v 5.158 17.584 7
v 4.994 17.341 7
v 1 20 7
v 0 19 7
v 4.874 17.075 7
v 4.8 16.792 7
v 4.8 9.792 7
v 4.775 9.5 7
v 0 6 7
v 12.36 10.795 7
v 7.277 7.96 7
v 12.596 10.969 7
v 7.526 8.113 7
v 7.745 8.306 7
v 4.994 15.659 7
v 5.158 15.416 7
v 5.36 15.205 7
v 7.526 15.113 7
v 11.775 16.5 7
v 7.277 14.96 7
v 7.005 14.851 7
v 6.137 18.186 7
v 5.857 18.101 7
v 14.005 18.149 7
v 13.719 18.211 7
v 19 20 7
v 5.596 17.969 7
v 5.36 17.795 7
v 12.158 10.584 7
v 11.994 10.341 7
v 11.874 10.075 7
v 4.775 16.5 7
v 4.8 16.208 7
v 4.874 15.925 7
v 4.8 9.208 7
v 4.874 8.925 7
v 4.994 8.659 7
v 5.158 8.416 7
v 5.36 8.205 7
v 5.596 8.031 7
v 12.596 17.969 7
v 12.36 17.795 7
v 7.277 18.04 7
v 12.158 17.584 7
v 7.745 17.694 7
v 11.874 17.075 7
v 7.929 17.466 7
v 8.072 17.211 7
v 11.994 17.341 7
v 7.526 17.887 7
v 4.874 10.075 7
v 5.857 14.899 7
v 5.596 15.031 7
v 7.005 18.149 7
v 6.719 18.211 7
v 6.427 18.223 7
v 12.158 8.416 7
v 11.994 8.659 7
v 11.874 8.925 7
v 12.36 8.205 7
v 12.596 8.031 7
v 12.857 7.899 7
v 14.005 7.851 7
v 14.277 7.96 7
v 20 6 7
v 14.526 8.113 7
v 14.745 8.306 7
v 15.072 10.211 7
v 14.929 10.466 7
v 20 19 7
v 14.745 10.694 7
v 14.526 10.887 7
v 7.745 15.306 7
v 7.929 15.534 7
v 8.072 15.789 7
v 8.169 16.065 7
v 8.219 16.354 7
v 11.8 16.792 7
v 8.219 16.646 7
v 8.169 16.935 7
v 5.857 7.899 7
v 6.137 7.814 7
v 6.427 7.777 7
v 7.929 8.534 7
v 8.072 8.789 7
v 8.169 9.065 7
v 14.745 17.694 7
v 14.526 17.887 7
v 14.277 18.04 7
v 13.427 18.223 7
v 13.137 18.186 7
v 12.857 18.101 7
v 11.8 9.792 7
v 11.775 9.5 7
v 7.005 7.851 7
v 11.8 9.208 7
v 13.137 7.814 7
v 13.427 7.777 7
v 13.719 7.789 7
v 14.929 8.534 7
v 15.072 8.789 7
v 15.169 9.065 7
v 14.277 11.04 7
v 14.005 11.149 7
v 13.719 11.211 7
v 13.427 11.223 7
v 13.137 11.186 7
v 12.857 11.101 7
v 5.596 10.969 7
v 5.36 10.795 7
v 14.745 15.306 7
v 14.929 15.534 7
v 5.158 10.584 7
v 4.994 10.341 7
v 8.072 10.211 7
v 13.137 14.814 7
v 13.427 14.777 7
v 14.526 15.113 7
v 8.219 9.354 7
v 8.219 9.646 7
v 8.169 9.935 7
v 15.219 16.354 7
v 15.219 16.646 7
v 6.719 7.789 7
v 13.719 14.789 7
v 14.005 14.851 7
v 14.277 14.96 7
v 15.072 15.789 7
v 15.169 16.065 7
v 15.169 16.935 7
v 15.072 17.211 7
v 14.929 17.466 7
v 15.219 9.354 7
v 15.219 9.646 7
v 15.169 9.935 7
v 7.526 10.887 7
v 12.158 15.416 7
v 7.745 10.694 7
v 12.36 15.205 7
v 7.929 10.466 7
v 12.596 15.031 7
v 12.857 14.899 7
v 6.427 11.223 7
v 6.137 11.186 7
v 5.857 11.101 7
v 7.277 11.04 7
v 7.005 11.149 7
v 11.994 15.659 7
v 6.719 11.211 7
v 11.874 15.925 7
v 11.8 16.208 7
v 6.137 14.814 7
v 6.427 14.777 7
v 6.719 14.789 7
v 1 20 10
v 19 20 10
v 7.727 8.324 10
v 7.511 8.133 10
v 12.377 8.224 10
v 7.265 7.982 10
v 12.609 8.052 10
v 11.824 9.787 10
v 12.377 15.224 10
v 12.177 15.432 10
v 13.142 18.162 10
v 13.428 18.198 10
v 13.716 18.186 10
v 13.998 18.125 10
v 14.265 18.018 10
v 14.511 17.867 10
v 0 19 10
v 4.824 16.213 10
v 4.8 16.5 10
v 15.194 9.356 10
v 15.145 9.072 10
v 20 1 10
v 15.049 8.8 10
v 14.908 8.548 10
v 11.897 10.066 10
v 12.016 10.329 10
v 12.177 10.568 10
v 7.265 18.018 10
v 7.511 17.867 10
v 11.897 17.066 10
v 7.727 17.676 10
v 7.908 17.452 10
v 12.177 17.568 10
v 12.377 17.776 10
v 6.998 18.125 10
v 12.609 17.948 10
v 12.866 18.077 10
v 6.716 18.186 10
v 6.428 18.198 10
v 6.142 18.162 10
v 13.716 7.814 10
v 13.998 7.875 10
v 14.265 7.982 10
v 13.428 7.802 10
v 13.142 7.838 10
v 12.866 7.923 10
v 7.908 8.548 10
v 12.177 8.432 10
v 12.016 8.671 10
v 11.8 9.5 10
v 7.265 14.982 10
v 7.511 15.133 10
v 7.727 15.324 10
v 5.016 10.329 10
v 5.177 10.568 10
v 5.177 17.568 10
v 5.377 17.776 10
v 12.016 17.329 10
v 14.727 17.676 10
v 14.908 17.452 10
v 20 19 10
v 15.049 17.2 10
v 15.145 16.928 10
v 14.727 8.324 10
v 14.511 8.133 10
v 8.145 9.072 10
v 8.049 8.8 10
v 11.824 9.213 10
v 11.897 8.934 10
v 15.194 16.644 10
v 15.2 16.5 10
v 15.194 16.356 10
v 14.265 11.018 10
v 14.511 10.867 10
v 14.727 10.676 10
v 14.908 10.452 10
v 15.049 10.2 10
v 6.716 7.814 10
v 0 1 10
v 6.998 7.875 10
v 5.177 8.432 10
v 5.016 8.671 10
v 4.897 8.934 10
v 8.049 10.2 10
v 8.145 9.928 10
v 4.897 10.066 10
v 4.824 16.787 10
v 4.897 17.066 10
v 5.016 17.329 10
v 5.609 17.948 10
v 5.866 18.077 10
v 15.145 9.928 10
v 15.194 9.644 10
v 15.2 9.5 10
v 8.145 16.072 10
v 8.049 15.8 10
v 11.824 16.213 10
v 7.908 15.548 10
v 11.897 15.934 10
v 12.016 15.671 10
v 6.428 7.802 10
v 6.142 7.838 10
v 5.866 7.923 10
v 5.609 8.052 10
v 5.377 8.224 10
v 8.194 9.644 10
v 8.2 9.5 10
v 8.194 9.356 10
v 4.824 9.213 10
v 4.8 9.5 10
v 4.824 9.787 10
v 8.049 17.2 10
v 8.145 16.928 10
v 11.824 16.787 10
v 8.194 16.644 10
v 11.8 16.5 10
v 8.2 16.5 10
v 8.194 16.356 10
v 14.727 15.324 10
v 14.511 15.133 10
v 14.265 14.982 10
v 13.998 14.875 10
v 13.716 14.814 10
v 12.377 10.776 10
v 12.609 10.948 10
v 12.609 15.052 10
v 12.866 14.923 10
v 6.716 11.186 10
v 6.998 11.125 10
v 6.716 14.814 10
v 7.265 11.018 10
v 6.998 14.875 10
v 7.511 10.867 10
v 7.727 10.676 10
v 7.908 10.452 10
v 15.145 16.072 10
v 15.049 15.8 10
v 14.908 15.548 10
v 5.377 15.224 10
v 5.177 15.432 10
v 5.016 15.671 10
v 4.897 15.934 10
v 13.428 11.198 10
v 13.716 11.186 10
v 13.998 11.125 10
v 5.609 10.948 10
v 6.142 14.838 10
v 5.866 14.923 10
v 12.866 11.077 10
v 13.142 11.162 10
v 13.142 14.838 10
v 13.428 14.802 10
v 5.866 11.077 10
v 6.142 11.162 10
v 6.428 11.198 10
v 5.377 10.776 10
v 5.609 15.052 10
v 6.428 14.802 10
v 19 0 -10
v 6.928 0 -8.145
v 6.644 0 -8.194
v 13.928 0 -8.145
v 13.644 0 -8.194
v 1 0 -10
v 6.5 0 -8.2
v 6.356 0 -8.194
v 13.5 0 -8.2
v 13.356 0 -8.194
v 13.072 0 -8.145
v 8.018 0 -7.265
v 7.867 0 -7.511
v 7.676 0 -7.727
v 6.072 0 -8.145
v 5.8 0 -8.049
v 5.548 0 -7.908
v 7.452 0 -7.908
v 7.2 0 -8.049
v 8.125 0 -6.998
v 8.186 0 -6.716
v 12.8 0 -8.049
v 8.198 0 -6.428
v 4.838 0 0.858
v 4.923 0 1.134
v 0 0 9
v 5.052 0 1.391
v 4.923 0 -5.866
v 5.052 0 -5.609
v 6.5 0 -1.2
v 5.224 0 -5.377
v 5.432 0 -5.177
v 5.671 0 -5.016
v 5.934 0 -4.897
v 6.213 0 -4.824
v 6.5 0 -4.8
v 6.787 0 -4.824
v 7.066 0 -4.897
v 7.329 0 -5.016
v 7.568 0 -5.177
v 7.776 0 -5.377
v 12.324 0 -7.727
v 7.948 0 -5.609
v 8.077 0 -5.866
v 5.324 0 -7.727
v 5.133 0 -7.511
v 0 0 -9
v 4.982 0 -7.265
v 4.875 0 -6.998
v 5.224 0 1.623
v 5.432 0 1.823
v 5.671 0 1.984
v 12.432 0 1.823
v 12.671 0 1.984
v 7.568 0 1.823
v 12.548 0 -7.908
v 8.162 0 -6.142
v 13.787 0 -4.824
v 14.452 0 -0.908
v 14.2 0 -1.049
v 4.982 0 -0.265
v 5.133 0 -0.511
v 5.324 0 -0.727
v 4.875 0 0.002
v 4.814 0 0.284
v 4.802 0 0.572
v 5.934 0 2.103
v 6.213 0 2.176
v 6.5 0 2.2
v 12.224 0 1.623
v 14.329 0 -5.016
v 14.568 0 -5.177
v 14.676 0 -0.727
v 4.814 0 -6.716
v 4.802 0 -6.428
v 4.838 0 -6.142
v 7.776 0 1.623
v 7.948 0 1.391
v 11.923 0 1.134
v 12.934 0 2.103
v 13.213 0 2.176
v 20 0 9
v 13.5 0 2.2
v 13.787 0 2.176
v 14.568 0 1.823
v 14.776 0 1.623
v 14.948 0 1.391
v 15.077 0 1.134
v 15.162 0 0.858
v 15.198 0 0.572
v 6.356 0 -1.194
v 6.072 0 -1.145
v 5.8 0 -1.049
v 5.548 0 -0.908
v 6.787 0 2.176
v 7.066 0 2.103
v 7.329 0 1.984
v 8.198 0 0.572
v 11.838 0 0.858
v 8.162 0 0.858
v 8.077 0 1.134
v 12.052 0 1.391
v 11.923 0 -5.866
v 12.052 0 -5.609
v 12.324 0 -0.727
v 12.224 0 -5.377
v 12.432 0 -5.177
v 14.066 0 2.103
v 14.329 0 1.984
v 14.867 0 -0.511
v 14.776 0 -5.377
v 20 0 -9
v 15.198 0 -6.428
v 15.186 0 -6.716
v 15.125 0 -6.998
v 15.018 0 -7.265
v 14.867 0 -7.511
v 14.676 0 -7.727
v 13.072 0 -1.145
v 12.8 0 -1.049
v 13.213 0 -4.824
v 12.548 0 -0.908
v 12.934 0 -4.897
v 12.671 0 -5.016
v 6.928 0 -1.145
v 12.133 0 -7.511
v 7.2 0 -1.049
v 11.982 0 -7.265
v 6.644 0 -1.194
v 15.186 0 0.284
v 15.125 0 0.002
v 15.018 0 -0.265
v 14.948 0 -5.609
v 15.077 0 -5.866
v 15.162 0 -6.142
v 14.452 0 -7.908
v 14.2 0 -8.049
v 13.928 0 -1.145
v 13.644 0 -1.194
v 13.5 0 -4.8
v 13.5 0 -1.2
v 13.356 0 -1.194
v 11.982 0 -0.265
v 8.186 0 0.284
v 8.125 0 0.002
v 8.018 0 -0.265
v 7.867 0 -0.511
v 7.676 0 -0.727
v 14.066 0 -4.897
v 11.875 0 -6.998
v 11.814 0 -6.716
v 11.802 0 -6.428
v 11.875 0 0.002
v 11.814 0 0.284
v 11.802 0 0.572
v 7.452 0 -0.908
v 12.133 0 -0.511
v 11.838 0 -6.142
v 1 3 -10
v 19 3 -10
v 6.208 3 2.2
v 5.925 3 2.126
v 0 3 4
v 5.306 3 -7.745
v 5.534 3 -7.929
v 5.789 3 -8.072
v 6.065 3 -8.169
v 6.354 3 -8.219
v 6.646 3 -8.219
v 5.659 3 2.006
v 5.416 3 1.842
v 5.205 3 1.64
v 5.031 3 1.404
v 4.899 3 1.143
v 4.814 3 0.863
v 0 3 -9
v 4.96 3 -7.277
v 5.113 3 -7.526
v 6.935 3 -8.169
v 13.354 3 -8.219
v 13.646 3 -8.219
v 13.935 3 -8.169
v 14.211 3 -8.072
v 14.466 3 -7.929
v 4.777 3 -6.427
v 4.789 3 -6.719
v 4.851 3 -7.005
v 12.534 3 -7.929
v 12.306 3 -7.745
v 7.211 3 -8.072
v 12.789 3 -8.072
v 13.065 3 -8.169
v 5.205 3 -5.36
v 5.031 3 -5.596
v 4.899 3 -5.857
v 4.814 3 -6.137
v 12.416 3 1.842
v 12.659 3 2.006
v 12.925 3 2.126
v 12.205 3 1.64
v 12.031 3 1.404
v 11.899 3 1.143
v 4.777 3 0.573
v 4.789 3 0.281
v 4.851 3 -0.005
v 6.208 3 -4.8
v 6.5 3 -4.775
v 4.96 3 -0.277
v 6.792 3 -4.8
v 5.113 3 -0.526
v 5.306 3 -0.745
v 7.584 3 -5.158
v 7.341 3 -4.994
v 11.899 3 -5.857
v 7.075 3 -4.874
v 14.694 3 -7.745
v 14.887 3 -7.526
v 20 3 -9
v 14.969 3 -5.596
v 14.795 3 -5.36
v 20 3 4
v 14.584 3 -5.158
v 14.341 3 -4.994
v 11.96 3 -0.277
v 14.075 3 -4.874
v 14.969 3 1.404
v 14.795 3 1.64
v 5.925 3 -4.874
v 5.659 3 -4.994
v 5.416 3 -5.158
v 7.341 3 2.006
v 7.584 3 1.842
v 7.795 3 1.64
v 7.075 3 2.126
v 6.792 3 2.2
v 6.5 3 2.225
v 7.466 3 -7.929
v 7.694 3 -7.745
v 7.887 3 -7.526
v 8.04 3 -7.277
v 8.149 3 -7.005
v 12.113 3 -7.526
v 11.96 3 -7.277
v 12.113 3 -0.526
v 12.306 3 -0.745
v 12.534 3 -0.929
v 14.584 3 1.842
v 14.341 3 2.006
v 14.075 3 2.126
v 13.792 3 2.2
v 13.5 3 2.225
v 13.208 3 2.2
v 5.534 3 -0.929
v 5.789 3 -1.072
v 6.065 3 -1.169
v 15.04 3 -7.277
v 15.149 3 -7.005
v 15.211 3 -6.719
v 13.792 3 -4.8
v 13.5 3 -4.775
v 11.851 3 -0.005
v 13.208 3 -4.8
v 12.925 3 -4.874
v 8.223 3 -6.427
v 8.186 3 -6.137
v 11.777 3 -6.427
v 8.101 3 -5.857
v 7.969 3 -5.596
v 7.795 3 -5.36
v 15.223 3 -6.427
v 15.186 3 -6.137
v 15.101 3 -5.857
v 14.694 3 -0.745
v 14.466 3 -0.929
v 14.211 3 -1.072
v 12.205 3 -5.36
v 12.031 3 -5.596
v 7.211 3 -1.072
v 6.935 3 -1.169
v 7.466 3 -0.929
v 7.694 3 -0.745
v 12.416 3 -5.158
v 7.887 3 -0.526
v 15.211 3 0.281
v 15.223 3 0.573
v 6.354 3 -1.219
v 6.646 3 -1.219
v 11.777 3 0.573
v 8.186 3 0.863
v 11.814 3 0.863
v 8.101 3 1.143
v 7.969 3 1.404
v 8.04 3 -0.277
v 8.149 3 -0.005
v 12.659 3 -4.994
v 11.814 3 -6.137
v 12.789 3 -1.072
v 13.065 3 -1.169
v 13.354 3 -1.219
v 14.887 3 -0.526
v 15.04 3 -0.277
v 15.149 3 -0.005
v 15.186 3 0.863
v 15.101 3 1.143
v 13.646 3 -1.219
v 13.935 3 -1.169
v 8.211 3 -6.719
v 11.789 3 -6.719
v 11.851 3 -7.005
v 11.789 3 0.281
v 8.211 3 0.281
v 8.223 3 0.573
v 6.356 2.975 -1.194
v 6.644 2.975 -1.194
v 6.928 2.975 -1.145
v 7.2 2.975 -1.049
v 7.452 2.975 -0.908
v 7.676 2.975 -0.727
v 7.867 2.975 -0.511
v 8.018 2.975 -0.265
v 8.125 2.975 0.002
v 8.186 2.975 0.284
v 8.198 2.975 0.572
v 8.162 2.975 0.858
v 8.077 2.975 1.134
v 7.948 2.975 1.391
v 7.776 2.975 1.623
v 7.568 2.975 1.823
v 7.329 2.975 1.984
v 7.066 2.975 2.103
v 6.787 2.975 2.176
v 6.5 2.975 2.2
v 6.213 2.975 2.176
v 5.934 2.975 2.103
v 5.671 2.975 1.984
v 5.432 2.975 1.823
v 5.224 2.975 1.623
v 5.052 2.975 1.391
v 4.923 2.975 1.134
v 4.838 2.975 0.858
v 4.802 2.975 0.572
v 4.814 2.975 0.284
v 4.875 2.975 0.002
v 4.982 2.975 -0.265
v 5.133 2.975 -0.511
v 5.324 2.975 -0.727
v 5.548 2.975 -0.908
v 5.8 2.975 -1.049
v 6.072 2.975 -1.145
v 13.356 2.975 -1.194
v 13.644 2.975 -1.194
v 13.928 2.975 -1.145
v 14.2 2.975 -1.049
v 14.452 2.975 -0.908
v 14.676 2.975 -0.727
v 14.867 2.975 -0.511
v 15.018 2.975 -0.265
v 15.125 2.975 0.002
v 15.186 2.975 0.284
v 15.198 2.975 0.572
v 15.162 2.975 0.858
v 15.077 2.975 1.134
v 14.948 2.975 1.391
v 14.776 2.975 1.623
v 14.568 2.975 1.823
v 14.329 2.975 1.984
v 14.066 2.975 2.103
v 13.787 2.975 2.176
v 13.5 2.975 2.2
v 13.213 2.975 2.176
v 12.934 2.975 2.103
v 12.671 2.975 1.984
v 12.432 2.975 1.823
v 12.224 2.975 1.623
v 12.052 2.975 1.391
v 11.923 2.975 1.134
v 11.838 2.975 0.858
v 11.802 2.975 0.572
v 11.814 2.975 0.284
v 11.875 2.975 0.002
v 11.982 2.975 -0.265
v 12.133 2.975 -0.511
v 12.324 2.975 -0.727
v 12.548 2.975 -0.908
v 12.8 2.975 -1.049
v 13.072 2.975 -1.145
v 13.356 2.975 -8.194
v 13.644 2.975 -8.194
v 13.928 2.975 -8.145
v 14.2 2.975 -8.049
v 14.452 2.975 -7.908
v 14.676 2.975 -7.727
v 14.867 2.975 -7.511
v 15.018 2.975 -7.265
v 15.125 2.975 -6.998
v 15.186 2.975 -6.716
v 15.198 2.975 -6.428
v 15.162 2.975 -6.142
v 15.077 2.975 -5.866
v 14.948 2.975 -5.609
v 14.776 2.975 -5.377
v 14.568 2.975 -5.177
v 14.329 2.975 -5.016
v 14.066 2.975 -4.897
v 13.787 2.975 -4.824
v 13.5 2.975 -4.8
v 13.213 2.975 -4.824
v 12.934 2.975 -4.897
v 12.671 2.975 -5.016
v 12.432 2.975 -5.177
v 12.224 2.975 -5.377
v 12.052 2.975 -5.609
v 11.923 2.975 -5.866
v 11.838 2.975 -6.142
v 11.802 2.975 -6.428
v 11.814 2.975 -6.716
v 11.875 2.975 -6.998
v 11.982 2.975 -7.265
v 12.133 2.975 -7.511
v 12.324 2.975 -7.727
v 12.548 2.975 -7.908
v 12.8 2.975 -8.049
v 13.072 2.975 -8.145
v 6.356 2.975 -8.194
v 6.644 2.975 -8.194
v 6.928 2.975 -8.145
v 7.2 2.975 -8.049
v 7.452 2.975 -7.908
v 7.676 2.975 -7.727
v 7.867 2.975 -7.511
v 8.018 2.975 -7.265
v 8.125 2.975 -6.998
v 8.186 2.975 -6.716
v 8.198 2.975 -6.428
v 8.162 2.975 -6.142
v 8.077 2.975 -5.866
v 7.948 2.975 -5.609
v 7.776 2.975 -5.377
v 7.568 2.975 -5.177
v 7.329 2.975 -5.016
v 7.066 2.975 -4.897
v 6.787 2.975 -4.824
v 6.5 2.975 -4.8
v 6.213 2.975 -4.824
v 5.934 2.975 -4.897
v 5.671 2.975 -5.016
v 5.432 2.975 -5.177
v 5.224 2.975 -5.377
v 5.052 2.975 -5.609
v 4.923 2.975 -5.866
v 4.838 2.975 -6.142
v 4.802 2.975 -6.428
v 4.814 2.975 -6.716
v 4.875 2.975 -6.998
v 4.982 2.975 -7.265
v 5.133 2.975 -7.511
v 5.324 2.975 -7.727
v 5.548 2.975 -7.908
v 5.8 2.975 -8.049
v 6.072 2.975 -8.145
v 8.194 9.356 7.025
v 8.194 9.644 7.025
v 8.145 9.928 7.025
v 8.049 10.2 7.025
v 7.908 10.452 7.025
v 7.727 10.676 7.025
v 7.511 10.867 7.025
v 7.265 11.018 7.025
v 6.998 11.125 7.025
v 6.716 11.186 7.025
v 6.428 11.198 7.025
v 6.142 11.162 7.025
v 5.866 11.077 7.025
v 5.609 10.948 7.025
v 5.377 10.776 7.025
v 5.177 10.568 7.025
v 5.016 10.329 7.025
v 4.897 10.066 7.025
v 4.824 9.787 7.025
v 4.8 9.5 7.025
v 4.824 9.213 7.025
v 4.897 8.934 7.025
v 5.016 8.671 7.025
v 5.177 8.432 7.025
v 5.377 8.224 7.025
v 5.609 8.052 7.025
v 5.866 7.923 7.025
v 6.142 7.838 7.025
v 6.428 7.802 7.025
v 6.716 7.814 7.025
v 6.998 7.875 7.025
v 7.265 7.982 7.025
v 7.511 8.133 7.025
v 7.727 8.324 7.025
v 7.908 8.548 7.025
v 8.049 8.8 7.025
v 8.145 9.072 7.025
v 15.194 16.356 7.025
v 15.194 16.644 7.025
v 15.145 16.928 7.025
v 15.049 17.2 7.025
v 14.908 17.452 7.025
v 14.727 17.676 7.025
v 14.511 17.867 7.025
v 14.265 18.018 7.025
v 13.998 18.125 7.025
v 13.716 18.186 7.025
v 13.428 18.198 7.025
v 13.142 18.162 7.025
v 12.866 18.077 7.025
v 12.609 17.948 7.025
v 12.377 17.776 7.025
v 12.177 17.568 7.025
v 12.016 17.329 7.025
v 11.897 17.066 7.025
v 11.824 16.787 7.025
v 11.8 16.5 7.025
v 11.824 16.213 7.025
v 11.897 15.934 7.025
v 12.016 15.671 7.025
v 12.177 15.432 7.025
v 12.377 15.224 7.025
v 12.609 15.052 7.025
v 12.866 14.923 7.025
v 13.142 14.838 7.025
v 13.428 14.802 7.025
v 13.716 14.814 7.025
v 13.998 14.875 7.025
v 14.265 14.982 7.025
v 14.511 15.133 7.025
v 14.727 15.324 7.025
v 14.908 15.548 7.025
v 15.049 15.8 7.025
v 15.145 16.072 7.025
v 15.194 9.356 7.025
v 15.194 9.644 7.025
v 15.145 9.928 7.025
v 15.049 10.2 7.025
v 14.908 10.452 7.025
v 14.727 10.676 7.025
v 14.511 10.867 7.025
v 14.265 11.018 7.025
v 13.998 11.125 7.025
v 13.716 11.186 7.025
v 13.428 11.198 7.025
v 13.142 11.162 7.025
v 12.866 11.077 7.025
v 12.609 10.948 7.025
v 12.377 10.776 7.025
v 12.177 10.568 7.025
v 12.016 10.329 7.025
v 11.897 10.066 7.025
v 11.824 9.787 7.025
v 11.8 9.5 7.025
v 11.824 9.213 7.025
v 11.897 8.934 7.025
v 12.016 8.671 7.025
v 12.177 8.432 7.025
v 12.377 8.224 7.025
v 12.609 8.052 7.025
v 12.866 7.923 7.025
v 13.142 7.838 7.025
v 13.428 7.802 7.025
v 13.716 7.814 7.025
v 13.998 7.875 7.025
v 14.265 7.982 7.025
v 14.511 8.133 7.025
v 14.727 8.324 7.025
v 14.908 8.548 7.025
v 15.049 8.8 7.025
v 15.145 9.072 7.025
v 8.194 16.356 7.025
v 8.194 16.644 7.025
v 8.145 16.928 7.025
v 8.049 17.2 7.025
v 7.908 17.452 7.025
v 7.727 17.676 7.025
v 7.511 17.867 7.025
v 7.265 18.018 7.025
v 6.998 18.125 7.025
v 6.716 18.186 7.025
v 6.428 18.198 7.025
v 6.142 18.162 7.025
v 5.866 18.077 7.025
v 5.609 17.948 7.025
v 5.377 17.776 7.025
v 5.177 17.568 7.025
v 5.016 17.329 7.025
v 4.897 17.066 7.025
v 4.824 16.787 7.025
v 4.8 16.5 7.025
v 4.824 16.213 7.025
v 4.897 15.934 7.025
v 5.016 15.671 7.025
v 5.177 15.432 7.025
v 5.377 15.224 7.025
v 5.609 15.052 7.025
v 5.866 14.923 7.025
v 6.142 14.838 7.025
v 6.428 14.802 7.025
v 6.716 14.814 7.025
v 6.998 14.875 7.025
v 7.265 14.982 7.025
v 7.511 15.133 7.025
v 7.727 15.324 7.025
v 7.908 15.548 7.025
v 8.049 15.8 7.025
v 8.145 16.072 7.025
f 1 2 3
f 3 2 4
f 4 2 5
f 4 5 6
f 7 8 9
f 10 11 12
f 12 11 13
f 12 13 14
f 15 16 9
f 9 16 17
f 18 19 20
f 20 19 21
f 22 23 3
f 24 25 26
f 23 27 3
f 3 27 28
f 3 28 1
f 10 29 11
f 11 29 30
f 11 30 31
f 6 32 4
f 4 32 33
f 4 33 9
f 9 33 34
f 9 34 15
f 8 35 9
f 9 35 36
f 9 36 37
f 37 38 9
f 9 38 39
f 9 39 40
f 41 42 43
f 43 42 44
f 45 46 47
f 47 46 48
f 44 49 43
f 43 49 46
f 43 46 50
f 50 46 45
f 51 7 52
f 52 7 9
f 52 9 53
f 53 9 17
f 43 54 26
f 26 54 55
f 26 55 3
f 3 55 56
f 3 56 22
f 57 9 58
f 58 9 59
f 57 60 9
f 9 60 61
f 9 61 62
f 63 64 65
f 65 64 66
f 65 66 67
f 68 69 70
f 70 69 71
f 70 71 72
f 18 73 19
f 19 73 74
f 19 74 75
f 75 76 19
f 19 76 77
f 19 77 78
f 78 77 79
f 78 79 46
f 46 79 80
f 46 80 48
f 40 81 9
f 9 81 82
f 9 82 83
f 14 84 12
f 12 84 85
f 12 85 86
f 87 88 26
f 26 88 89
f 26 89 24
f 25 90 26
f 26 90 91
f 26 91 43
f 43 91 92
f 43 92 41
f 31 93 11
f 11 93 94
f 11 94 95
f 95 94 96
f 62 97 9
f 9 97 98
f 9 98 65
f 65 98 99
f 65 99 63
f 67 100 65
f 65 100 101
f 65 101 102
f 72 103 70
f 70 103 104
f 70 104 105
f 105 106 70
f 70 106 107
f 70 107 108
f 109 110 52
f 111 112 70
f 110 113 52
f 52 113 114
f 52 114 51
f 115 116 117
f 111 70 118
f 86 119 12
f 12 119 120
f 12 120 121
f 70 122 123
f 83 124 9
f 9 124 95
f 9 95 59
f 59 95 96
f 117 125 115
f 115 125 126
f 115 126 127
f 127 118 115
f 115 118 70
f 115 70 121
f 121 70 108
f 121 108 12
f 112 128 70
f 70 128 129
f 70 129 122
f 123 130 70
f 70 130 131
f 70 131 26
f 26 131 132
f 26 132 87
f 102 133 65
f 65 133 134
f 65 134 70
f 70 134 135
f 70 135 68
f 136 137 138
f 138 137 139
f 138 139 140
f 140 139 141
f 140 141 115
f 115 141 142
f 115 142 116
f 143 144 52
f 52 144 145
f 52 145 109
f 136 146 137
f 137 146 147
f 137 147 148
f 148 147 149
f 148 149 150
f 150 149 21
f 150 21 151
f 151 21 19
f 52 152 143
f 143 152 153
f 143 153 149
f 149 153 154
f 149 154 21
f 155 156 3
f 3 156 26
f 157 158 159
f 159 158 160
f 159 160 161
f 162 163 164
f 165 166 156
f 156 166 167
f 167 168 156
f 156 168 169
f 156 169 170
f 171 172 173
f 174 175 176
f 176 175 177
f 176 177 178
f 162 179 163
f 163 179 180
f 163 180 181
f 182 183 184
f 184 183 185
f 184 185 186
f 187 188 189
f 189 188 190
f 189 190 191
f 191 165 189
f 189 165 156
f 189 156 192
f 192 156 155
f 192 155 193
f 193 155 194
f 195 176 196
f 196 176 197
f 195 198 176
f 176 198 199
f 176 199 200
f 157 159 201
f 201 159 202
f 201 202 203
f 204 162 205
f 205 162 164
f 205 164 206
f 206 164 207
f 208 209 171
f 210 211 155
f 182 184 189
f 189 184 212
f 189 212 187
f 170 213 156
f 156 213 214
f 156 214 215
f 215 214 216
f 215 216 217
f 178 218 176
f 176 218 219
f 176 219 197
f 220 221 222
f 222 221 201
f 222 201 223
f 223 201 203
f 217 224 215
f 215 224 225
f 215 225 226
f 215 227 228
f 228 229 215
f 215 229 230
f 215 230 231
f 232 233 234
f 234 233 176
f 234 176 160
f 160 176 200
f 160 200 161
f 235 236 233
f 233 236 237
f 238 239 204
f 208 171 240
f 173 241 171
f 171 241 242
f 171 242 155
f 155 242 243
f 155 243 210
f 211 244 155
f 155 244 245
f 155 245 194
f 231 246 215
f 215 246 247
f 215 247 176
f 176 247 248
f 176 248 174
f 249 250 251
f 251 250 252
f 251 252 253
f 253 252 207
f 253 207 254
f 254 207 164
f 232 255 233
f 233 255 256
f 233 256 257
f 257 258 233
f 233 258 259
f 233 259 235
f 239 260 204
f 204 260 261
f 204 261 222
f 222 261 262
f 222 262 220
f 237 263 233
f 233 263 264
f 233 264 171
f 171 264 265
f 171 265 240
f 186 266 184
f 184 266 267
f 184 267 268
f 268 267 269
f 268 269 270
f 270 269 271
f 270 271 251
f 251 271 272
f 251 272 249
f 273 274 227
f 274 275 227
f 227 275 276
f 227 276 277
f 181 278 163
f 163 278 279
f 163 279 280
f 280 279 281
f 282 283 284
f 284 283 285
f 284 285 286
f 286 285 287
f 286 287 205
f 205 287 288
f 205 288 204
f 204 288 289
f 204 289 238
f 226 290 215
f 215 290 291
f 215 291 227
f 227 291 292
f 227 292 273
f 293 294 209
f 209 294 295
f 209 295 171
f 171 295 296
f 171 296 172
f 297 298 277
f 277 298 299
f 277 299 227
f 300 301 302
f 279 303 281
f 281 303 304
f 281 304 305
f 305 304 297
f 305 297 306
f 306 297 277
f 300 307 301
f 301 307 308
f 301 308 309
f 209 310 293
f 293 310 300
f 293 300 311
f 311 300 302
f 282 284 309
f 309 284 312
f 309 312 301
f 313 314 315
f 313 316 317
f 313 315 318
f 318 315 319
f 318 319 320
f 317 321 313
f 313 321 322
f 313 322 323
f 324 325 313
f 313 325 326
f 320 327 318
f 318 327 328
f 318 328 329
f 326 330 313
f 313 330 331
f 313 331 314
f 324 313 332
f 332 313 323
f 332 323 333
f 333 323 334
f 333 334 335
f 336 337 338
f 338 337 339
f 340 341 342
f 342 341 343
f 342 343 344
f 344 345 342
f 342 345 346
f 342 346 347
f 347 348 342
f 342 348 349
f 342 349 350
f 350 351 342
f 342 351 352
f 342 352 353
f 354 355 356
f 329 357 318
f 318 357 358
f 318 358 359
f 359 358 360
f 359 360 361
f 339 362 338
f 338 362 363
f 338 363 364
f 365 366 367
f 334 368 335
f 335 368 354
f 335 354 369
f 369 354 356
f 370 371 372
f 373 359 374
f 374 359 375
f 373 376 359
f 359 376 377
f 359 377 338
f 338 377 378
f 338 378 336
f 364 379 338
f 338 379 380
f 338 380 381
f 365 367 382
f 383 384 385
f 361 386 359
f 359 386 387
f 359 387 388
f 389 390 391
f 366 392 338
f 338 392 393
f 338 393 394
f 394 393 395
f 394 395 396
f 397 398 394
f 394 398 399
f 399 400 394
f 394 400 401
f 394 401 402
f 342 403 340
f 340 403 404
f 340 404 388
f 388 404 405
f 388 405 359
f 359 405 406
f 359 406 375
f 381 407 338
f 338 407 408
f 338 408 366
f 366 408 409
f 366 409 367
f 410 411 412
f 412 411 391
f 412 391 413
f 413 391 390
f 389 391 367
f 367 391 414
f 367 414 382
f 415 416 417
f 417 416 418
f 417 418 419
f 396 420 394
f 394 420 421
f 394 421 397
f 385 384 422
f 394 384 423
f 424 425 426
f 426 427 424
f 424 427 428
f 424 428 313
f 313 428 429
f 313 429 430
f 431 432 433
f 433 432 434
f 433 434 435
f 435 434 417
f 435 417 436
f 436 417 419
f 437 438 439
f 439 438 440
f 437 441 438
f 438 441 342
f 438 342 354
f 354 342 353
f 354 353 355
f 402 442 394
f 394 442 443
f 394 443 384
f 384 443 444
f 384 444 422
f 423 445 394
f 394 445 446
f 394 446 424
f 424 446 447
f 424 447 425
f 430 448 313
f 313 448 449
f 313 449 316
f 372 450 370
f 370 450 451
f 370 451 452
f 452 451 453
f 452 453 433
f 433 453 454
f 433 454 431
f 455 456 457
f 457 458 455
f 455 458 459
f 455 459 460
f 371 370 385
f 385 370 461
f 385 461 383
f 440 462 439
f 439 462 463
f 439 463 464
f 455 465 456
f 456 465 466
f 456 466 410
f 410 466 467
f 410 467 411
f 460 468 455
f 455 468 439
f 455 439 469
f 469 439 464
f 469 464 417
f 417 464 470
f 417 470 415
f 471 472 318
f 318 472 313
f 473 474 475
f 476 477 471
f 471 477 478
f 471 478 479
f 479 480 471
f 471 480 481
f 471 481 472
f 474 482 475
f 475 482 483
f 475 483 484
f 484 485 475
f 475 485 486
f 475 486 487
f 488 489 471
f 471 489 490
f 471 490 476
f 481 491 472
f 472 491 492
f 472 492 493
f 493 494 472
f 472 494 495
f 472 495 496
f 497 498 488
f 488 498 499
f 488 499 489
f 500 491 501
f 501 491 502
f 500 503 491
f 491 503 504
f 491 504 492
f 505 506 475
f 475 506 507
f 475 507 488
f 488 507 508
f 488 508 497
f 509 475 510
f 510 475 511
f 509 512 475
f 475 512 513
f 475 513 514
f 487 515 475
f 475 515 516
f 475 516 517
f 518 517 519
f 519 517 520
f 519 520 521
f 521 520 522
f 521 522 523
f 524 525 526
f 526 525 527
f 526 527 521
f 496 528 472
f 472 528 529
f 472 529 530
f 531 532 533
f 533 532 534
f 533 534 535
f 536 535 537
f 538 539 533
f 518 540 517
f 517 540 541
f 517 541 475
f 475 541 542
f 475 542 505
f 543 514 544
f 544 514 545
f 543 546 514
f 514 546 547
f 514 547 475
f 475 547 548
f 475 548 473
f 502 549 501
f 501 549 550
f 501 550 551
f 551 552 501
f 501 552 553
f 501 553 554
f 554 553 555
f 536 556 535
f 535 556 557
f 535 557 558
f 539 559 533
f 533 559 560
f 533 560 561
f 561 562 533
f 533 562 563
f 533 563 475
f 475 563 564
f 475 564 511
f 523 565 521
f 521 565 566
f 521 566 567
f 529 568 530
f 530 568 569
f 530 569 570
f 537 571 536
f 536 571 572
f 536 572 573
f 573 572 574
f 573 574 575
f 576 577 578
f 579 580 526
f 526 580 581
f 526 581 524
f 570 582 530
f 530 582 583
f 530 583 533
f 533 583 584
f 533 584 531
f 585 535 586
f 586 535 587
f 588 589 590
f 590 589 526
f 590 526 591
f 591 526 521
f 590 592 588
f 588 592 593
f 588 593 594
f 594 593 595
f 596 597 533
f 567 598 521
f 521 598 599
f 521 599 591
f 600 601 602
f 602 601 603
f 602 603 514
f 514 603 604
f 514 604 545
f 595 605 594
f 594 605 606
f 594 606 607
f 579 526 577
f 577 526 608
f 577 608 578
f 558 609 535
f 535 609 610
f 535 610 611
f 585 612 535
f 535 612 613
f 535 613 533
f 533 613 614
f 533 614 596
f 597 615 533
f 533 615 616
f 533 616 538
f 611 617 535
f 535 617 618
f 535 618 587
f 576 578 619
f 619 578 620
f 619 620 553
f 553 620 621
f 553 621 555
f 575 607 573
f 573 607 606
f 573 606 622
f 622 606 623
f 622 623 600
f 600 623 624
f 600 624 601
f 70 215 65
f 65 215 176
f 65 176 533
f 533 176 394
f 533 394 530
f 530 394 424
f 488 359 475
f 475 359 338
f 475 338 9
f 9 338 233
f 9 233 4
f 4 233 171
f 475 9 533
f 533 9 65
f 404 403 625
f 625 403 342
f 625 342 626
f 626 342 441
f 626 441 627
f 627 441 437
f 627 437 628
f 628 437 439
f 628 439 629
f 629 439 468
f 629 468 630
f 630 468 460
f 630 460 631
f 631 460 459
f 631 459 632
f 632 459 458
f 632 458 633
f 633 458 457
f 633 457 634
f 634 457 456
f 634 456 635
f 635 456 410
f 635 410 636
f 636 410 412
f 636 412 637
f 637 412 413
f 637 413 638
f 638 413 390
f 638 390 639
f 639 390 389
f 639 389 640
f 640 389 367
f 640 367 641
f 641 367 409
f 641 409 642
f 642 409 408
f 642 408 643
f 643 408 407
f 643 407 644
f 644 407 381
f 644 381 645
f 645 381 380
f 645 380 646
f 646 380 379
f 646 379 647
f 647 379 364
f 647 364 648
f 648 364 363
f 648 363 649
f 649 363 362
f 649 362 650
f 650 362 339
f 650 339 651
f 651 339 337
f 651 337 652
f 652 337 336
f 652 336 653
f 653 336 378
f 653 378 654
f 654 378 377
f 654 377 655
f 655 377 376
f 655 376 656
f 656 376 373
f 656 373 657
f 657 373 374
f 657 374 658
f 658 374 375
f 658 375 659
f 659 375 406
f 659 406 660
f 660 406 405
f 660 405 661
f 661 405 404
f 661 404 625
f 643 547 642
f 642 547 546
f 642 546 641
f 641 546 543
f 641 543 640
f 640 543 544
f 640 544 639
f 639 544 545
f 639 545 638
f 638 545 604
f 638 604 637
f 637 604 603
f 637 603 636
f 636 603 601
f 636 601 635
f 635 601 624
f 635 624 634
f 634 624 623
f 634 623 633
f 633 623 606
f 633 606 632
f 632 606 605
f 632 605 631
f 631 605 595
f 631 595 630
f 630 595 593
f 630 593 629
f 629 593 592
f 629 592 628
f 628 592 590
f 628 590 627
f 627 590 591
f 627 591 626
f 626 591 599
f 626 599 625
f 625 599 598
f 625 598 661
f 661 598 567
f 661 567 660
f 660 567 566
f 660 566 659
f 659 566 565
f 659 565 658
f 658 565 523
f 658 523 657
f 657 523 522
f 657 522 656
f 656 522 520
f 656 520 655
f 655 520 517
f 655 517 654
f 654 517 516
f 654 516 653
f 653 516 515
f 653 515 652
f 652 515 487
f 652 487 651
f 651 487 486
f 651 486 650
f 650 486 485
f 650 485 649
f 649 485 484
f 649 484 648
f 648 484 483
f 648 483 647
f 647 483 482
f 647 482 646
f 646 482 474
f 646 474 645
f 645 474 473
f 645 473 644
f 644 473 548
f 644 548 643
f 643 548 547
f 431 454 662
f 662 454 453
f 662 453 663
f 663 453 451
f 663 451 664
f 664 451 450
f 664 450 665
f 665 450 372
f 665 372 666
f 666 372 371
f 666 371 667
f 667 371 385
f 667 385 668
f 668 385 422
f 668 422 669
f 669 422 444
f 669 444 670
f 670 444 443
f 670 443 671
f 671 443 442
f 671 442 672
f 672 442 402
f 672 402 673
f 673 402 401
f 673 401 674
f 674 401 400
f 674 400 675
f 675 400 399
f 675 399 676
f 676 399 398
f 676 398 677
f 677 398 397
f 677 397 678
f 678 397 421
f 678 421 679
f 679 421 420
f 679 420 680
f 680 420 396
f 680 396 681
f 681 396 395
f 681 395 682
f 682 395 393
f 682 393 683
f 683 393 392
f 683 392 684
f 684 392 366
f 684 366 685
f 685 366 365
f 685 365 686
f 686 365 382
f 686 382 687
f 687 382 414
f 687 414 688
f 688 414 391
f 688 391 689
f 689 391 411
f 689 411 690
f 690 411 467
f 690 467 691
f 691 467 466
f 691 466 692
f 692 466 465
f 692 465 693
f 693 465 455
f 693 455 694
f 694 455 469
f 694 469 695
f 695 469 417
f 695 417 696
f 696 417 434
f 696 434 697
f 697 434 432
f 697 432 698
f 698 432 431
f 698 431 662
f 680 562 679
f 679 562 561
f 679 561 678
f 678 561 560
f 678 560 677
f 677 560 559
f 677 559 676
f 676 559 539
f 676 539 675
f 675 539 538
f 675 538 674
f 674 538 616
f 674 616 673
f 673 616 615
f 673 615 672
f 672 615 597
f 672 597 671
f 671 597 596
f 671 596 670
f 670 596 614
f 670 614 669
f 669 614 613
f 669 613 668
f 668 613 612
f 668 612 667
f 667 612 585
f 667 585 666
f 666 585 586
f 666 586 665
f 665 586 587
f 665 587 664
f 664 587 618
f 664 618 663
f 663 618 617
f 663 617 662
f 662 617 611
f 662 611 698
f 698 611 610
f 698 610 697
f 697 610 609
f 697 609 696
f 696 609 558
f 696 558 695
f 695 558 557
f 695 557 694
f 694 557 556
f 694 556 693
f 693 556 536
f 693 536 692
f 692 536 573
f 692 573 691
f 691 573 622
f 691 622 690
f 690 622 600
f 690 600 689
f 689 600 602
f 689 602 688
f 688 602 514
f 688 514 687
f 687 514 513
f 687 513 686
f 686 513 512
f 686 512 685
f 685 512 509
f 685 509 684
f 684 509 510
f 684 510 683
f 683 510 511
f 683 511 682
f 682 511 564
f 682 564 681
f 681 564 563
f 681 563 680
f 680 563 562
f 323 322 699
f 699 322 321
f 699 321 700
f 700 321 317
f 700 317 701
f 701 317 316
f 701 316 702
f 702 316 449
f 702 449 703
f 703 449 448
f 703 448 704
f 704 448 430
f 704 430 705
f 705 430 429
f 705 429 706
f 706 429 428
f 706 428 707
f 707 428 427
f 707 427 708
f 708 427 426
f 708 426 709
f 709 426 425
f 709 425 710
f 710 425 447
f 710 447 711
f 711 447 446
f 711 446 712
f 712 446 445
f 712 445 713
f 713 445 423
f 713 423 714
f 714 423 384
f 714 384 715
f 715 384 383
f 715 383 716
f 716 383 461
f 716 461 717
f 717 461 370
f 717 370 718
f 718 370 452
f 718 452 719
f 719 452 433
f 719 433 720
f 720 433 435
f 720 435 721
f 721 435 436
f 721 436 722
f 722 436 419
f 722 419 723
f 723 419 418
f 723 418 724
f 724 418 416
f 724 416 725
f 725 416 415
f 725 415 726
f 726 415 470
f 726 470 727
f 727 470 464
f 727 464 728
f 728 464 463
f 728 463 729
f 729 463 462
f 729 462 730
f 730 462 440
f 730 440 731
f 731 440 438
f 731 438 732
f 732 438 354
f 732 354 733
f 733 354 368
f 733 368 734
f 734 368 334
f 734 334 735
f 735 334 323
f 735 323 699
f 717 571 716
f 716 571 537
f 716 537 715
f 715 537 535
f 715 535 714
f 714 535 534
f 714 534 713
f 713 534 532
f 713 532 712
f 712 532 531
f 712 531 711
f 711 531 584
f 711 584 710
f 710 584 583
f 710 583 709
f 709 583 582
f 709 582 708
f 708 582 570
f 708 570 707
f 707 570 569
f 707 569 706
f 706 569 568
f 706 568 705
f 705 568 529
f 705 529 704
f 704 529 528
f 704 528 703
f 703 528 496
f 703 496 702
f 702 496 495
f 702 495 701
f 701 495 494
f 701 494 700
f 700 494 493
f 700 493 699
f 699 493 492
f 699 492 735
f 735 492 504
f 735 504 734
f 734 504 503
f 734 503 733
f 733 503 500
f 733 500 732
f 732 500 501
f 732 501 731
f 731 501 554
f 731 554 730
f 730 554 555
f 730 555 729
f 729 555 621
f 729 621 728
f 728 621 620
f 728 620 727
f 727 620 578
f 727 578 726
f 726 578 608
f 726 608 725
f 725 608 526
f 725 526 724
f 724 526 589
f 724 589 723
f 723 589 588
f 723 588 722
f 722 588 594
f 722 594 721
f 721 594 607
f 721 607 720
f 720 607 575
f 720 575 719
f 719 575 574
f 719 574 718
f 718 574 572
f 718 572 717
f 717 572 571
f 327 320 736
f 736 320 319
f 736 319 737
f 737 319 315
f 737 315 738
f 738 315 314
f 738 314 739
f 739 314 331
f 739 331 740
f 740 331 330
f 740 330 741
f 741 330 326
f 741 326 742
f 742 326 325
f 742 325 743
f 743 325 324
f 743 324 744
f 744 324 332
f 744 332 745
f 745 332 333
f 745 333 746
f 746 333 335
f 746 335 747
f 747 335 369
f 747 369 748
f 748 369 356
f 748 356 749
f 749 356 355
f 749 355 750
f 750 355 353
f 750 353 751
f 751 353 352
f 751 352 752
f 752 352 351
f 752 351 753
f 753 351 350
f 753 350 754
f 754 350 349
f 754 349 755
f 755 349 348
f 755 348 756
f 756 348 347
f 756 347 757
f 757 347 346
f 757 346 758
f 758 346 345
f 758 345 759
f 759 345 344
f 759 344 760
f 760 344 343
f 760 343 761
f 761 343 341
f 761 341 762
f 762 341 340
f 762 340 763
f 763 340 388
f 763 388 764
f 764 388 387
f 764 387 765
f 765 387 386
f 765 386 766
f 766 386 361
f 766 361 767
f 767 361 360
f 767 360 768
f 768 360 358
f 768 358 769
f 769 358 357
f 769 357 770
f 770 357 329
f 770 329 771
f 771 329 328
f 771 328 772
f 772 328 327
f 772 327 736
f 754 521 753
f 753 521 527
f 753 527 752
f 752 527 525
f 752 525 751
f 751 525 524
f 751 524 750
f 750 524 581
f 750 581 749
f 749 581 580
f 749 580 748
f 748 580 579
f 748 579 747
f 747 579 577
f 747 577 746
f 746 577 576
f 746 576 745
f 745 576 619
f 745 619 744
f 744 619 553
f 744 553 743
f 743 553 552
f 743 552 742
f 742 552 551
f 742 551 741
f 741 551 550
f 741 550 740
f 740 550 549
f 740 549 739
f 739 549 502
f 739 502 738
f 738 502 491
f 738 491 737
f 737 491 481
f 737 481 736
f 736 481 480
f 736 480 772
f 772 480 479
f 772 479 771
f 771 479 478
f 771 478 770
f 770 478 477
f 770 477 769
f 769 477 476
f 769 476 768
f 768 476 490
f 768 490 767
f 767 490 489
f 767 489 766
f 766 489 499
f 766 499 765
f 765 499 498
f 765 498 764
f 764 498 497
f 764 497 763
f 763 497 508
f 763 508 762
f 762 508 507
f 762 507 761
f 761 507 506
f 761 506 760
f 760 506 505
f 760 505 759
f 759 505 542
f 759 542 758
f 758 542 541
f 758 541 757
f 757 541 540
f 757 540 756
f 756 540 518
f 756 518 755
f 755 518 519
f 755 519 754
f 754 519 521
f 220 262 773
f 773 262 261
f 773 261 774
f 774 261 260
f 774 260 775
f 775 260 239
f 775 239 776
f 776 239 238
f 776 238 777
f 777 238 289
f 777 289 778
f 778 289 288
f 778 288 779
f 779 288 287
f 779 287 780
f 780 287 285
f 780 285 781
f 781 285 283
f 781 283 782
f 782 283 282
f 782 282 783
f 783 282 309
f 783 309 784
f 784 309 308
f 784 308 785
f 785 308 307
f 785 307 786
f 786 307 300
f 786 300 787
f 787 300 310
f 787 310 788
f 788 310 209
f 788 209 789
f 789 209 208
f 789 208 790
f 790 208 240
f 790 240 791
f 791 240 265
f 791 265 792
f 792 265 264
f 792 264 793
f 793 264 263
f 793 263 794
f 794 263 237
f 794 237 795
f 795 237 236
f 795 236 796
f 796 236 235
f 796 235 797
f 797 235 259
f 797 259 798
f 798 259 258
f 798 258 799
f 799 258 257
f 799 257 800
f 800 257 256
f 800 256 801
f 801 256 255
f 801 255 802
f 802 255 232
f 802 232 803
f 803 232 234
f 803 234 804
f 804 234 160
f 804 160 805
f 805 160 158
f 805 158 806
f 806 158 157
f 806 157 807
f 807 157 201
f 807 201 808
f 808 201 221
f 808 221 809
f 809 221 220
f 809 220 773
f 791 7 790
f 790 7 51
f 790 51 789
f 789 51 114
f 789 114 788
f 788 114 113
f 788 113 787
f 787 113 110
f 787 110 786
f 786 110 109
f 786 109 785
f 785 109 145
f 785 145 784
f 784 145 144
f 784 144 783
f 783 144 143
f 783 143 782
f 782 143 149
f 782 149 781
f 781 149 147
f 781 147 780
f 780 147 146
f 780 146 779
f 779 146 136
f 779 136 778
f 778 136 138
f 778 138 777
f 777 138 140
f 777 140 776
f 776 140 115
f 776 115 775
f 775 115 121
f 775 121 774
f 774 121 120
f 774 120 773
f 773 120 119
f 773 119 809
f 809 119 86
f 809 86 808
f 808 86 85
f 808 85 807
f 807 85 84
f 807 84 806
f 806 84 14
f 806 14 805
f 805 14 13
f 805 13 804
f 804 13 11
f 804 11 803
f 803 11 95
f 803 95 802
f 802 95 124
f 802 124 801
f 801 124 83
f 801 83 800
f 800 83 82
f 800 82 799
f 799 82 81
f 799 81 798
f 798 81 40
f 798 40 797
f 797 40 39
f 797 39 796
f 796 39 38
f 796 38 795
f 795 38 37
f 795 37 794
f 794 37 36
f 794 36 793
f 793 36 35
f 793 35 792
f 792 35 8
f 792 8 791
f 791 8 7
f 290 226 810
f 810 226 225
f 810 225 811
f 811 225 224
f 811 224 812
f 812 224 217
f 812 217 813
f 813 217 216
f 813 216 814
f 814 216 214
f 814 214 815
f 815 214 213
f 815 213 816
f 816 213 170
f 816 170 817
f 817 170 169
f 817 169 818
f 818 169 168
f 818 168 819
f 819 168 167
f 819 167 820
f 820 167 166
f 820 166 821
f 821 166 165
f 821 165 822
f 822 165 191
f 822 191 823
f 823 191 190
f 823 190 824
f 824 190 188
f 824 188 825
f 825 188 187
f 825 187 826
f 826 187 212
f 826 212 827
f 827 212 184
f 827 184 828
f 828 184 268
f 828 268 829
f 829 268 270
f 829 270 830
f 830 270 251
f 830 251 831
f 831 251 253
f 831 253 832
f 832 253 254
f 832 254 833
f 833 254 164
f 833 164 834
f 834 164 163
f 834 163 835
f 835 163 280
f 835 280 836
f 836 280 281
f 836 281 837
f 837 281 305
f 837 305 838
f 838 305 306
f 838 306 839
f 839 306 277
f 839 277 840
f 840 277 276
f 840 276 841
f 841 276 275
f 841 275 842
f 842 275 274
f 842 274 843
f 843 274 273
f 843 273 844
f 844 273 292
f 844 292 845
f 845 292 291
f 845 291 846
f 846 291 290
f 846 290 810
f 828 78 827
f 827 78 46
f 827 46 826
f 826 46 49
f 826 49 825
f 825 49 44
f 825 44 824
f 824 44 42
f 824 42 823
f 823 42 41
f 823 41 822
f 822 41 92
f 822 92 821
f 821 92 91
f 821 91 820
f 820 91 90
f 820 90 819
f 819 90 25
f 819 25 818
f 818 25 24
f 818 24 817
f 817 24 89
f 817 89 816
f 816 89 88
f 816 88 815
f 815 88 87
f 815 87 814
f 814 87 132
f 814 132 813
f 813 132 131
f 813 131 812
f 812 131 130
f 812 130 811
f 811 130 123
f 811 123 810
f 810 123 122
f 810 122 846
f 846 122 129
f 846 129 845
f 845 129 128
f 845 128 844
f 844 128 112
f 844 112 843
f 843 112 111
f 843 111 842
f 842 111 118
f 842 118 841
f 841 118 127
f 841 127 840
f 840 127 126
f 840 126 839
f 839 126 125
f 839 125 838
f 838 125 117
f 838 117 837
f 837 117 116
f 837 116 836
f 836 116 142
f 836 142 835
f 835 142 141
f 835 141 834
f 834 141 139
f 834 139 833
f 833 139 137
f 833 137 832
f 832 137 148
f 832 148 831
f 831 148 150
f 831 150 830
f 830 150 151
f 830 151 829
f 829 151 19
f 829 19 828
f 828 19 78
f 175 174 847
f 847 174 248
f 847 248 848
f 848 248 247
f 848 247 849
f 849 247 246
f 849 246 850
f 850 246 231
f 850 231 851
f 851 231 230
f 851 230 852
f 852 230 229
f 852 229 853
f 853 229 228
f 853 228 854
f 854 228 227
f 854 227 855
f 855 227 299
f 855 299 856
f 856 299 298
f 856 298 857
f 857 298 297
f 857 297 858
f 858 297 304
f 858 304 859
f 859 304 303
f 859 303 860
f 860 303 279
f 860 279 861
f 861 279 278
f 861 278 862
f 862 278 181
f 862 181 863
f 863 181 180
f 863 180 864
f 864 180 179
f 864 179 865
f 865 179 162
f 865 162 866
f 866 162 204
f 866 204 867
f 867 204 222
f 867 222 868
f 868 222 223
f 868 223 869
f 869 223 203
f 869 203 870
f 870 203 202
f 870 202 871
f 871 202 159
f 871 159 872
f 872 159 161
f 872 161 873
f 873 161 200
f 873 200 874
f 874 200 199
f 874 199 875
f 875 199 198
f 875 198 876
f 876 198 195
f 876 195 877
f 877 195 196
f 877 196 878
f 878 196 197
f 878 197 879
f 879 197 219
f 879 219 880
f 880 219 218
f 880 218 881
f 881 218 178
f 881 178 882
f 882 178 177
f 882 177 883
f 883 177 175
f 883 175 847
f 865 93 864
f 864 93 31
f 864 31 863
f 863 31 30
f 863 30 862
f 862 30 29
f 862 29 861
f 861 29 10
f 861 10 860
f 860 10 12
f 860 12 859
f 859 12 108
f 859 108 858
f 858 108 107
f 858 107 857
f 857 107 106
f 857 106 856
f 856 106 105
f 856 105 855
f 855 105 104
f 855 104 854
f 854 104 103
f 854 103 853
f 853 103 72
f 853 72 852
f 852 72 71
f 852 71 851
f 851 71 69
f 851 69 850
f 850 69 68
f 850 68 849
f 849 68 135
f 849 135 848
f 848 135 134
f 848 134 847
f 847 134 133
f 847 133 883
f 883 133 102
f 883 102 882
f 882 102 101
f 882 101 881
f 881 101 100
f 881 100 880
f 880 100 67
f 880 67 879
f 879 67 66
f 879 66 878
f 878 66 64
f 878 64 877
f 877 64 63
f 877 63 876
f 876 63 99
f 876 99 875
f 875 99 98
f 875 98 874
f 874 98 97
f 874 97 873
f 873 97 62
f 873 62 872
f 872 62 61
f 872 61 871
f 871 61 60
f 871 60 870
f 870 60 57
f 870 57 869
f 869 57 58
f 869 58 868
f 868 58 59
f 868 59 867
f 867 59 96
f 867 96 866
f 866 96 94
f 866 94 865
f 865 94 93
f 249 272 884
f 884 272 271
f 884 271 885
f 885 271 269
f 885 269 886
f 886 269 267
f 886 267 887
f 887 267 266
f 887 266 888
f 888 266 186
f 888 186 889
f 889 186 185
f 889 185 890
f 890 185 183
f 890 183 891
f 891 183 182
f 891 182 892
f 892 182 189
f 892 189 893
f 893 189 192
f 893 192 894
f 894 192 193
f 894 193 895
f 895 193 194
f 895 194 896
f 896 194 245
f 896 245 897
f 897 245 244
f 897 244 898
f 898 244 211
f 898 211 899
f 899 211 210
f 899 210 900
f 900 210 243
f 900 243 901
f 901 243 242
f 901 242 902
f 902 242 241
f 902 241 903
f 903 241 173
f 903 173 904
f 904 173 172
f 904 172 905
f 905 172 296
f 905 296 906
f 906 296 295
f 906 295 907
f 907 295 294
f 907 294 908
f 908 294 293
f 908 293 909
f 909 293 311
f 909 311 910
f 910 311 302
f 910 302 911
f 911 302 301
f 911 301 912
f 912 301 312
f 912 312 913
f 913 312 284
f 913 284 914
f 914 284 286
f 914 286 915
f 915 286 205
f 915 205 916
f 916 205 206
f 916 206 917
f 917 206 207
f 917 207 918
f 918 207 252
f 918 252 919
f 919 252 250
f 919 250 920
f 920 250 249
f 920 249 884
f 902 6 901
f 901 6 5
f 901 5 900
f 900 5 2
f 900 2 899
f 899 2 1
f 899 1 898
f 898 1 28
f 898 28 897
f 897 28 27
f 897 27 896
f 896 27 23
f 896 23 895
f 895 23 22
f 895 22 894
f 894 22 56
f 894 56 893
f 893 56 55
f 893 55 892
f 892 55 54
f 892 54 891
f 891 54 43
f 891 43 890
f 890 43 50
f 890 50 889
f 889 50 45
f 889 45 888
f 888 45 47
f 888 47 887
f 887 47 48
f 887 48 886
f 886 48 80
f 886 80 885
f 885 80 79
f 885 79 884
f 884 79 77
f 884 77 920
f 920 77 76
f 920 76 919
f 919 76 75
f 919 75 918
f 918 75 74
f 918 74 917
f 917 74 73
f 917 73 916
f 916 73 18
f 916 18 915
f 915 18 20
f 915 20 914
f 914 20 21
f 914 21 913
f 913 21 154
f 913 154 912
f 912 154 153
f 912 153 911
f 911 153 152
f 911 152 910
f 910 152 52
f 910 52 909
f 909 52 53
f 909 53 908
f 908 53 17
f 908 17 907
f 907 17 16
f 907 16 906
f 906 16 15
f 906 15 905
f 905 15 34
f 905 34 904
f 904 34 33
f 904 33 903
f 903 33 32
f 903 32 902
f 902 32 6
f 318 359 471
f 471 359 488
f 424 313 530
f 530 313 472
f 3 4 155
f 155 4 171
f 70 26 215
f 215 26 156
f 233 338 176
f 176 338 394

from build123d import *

# Parameters (mm, degrees)
EXTRUDE_THIN1_DEPTH            = 20
CHAMFER1_SIZE                  = 3
M3_CLEARANCE_HOLE1_D           = 3.4
M3_CLEARANCE_HOLE1_DEPTH       = 6
M3_CLEARANCE_HOLE1_CSINK_D     = 3.45
M3_CLEARANCE_HOLE1_CSINK_ANGLE = 90
M3_CLEARANCE_HOLE1_TIP         = 1.021463052
CHAMFER2_SIZE                  = 1


# Read off the part's stored shape, not the designer's step: M3 Clearance Hole2
with BuildPart() as part:
    # Sketch2 → Extrude-Thin1 (new body)
    with BuildSketch(Plane(origin=(0, 0, 0), x_dir=(0, 0, -1), z_dir=(1, 0, 0))):
        Polygon((-10, 20), (-10, 0), (10, 0), (10, 3), (-7, 3), (-7, 20), align=None)
    extrude(amount=EXTRUDE_THIN1_DEPTH)

    # Chamfer1
    chamfer1_edges = [part.edges().sort_by_distance(p)[0] for p in [
        (10, 3, 7),
    ]]
    chamfer(chamfer1_edges, length=CHAMFER1_SIZE)

    # M3 Clearance Hole1
    with Locations(Plane(origin=(0, 3, 0), x_dir=(1, 0, 0), z_dir=(0, 1, 0))):
        with Locations((6.5, 6.5), (13.5, 6.5), (13.5, -0.5), (6.5, -0.5)):
            CounterSinkHole(M3_CLEARANCE_HOLE1_D / 2, M3_CLEARANCE_HOLE1_CSINK_D / 2, depth=M3_CLEARANCE_HOLE1_DEPTH, counter_sink_angle=M3_CLEARANCE_HOLE1_CSINK_ANGLE)
            with Locations((0, 0, -(M3_CLEARANCE_HOLE1_DEPTH + M3_CLEARANCE_HOLE1_TIP / 2))):  # 118° drill point
                Cone(0, M3_CLEARANCE_HOLE1_D / 2, M3_CLEARANCE_HOLE1_TIP, mode=Mode.SUBTRACT)

    # M3 Clearance Hole2 outline → M3 Clearance Hole2 (revolve, cut)
    with BuildSketch(Plane(origin=(6.5, 9.5, 0), x_dir=(1, 0, 0), z_dir=(0, -1, 0))):
        Polygon((1.7, 7.025), (1.7, 10), (0, 10), (0, 7), (1.725, 7), align=None)
    revolve(axis=Axis((6.5, 9.5, 0), (0, 0, 1)), mode=Mode.SUBTRACT)

    # M3 Clearance Hole2 2 outline → M3 Clearance Hole2 2 (revolve, cut)
    with BuildSketch(Plane(origin=(13.5, 16.5, 0), x_dir=(1, 0, 0), z_dir=(0, -1, 0))):
        Polygon((1.7, 7.025), (1.7, 10), (0, 10), (0, 7), (1.725, 7), align=None)
    revolve(axis=Axis((13.5, 16.5, 0), (0, 0, 1)), mode=Mode.SUBTRACT)

    # M3 Clearance Hole2 3 outline → M3 Clearance Hole2 3 (revolve, cut)
    with BuildSketch(Plane(origin=(13.5, 9.5, 0), x_dir=(1, 0, 0), z_dir=(0, -1, 0))):
        Polygon((1.7, 7.025), (1.7, 10), (0, 10), (0, 7), (1.725, 7), align=None)
    revolve(axis=Axis((13.5, 9.5, 0), (0, 0, 1)), mode=Mode.SUBTRACT)

    # M3 Clearance Hole2 4 outline → M3 Clearance Hole2 4 (revolve, cut)
    with BuildSketch(Plane(origin=(6.5, 16.5, 0), x_dir=(1, 0, 0), z_dir=(0, -1, 0))):
        Polygon((1.7, 7.025), (1.7, 10), (0, 10), (0, 7), (1.725, 7), align=None)
    revolve(axis=Axis((6.5, 16.5, 0), (0, 0, 1)), mode=Mode.SUBTRACT)

    # Chamfer2
    chamfer2_edges = [part.edges().sort_by_distance(p)[0] for p in [
        (20, 1.5, -10),
        (0, 1.5, -10),
        (0, 20, 8.5),
        (20, 20, 8.5),
        (10, 0, 10),
    ]]
    chamfer(chamfer2_edges, length=CHAMFER2_SIZE)


solid = part.part
